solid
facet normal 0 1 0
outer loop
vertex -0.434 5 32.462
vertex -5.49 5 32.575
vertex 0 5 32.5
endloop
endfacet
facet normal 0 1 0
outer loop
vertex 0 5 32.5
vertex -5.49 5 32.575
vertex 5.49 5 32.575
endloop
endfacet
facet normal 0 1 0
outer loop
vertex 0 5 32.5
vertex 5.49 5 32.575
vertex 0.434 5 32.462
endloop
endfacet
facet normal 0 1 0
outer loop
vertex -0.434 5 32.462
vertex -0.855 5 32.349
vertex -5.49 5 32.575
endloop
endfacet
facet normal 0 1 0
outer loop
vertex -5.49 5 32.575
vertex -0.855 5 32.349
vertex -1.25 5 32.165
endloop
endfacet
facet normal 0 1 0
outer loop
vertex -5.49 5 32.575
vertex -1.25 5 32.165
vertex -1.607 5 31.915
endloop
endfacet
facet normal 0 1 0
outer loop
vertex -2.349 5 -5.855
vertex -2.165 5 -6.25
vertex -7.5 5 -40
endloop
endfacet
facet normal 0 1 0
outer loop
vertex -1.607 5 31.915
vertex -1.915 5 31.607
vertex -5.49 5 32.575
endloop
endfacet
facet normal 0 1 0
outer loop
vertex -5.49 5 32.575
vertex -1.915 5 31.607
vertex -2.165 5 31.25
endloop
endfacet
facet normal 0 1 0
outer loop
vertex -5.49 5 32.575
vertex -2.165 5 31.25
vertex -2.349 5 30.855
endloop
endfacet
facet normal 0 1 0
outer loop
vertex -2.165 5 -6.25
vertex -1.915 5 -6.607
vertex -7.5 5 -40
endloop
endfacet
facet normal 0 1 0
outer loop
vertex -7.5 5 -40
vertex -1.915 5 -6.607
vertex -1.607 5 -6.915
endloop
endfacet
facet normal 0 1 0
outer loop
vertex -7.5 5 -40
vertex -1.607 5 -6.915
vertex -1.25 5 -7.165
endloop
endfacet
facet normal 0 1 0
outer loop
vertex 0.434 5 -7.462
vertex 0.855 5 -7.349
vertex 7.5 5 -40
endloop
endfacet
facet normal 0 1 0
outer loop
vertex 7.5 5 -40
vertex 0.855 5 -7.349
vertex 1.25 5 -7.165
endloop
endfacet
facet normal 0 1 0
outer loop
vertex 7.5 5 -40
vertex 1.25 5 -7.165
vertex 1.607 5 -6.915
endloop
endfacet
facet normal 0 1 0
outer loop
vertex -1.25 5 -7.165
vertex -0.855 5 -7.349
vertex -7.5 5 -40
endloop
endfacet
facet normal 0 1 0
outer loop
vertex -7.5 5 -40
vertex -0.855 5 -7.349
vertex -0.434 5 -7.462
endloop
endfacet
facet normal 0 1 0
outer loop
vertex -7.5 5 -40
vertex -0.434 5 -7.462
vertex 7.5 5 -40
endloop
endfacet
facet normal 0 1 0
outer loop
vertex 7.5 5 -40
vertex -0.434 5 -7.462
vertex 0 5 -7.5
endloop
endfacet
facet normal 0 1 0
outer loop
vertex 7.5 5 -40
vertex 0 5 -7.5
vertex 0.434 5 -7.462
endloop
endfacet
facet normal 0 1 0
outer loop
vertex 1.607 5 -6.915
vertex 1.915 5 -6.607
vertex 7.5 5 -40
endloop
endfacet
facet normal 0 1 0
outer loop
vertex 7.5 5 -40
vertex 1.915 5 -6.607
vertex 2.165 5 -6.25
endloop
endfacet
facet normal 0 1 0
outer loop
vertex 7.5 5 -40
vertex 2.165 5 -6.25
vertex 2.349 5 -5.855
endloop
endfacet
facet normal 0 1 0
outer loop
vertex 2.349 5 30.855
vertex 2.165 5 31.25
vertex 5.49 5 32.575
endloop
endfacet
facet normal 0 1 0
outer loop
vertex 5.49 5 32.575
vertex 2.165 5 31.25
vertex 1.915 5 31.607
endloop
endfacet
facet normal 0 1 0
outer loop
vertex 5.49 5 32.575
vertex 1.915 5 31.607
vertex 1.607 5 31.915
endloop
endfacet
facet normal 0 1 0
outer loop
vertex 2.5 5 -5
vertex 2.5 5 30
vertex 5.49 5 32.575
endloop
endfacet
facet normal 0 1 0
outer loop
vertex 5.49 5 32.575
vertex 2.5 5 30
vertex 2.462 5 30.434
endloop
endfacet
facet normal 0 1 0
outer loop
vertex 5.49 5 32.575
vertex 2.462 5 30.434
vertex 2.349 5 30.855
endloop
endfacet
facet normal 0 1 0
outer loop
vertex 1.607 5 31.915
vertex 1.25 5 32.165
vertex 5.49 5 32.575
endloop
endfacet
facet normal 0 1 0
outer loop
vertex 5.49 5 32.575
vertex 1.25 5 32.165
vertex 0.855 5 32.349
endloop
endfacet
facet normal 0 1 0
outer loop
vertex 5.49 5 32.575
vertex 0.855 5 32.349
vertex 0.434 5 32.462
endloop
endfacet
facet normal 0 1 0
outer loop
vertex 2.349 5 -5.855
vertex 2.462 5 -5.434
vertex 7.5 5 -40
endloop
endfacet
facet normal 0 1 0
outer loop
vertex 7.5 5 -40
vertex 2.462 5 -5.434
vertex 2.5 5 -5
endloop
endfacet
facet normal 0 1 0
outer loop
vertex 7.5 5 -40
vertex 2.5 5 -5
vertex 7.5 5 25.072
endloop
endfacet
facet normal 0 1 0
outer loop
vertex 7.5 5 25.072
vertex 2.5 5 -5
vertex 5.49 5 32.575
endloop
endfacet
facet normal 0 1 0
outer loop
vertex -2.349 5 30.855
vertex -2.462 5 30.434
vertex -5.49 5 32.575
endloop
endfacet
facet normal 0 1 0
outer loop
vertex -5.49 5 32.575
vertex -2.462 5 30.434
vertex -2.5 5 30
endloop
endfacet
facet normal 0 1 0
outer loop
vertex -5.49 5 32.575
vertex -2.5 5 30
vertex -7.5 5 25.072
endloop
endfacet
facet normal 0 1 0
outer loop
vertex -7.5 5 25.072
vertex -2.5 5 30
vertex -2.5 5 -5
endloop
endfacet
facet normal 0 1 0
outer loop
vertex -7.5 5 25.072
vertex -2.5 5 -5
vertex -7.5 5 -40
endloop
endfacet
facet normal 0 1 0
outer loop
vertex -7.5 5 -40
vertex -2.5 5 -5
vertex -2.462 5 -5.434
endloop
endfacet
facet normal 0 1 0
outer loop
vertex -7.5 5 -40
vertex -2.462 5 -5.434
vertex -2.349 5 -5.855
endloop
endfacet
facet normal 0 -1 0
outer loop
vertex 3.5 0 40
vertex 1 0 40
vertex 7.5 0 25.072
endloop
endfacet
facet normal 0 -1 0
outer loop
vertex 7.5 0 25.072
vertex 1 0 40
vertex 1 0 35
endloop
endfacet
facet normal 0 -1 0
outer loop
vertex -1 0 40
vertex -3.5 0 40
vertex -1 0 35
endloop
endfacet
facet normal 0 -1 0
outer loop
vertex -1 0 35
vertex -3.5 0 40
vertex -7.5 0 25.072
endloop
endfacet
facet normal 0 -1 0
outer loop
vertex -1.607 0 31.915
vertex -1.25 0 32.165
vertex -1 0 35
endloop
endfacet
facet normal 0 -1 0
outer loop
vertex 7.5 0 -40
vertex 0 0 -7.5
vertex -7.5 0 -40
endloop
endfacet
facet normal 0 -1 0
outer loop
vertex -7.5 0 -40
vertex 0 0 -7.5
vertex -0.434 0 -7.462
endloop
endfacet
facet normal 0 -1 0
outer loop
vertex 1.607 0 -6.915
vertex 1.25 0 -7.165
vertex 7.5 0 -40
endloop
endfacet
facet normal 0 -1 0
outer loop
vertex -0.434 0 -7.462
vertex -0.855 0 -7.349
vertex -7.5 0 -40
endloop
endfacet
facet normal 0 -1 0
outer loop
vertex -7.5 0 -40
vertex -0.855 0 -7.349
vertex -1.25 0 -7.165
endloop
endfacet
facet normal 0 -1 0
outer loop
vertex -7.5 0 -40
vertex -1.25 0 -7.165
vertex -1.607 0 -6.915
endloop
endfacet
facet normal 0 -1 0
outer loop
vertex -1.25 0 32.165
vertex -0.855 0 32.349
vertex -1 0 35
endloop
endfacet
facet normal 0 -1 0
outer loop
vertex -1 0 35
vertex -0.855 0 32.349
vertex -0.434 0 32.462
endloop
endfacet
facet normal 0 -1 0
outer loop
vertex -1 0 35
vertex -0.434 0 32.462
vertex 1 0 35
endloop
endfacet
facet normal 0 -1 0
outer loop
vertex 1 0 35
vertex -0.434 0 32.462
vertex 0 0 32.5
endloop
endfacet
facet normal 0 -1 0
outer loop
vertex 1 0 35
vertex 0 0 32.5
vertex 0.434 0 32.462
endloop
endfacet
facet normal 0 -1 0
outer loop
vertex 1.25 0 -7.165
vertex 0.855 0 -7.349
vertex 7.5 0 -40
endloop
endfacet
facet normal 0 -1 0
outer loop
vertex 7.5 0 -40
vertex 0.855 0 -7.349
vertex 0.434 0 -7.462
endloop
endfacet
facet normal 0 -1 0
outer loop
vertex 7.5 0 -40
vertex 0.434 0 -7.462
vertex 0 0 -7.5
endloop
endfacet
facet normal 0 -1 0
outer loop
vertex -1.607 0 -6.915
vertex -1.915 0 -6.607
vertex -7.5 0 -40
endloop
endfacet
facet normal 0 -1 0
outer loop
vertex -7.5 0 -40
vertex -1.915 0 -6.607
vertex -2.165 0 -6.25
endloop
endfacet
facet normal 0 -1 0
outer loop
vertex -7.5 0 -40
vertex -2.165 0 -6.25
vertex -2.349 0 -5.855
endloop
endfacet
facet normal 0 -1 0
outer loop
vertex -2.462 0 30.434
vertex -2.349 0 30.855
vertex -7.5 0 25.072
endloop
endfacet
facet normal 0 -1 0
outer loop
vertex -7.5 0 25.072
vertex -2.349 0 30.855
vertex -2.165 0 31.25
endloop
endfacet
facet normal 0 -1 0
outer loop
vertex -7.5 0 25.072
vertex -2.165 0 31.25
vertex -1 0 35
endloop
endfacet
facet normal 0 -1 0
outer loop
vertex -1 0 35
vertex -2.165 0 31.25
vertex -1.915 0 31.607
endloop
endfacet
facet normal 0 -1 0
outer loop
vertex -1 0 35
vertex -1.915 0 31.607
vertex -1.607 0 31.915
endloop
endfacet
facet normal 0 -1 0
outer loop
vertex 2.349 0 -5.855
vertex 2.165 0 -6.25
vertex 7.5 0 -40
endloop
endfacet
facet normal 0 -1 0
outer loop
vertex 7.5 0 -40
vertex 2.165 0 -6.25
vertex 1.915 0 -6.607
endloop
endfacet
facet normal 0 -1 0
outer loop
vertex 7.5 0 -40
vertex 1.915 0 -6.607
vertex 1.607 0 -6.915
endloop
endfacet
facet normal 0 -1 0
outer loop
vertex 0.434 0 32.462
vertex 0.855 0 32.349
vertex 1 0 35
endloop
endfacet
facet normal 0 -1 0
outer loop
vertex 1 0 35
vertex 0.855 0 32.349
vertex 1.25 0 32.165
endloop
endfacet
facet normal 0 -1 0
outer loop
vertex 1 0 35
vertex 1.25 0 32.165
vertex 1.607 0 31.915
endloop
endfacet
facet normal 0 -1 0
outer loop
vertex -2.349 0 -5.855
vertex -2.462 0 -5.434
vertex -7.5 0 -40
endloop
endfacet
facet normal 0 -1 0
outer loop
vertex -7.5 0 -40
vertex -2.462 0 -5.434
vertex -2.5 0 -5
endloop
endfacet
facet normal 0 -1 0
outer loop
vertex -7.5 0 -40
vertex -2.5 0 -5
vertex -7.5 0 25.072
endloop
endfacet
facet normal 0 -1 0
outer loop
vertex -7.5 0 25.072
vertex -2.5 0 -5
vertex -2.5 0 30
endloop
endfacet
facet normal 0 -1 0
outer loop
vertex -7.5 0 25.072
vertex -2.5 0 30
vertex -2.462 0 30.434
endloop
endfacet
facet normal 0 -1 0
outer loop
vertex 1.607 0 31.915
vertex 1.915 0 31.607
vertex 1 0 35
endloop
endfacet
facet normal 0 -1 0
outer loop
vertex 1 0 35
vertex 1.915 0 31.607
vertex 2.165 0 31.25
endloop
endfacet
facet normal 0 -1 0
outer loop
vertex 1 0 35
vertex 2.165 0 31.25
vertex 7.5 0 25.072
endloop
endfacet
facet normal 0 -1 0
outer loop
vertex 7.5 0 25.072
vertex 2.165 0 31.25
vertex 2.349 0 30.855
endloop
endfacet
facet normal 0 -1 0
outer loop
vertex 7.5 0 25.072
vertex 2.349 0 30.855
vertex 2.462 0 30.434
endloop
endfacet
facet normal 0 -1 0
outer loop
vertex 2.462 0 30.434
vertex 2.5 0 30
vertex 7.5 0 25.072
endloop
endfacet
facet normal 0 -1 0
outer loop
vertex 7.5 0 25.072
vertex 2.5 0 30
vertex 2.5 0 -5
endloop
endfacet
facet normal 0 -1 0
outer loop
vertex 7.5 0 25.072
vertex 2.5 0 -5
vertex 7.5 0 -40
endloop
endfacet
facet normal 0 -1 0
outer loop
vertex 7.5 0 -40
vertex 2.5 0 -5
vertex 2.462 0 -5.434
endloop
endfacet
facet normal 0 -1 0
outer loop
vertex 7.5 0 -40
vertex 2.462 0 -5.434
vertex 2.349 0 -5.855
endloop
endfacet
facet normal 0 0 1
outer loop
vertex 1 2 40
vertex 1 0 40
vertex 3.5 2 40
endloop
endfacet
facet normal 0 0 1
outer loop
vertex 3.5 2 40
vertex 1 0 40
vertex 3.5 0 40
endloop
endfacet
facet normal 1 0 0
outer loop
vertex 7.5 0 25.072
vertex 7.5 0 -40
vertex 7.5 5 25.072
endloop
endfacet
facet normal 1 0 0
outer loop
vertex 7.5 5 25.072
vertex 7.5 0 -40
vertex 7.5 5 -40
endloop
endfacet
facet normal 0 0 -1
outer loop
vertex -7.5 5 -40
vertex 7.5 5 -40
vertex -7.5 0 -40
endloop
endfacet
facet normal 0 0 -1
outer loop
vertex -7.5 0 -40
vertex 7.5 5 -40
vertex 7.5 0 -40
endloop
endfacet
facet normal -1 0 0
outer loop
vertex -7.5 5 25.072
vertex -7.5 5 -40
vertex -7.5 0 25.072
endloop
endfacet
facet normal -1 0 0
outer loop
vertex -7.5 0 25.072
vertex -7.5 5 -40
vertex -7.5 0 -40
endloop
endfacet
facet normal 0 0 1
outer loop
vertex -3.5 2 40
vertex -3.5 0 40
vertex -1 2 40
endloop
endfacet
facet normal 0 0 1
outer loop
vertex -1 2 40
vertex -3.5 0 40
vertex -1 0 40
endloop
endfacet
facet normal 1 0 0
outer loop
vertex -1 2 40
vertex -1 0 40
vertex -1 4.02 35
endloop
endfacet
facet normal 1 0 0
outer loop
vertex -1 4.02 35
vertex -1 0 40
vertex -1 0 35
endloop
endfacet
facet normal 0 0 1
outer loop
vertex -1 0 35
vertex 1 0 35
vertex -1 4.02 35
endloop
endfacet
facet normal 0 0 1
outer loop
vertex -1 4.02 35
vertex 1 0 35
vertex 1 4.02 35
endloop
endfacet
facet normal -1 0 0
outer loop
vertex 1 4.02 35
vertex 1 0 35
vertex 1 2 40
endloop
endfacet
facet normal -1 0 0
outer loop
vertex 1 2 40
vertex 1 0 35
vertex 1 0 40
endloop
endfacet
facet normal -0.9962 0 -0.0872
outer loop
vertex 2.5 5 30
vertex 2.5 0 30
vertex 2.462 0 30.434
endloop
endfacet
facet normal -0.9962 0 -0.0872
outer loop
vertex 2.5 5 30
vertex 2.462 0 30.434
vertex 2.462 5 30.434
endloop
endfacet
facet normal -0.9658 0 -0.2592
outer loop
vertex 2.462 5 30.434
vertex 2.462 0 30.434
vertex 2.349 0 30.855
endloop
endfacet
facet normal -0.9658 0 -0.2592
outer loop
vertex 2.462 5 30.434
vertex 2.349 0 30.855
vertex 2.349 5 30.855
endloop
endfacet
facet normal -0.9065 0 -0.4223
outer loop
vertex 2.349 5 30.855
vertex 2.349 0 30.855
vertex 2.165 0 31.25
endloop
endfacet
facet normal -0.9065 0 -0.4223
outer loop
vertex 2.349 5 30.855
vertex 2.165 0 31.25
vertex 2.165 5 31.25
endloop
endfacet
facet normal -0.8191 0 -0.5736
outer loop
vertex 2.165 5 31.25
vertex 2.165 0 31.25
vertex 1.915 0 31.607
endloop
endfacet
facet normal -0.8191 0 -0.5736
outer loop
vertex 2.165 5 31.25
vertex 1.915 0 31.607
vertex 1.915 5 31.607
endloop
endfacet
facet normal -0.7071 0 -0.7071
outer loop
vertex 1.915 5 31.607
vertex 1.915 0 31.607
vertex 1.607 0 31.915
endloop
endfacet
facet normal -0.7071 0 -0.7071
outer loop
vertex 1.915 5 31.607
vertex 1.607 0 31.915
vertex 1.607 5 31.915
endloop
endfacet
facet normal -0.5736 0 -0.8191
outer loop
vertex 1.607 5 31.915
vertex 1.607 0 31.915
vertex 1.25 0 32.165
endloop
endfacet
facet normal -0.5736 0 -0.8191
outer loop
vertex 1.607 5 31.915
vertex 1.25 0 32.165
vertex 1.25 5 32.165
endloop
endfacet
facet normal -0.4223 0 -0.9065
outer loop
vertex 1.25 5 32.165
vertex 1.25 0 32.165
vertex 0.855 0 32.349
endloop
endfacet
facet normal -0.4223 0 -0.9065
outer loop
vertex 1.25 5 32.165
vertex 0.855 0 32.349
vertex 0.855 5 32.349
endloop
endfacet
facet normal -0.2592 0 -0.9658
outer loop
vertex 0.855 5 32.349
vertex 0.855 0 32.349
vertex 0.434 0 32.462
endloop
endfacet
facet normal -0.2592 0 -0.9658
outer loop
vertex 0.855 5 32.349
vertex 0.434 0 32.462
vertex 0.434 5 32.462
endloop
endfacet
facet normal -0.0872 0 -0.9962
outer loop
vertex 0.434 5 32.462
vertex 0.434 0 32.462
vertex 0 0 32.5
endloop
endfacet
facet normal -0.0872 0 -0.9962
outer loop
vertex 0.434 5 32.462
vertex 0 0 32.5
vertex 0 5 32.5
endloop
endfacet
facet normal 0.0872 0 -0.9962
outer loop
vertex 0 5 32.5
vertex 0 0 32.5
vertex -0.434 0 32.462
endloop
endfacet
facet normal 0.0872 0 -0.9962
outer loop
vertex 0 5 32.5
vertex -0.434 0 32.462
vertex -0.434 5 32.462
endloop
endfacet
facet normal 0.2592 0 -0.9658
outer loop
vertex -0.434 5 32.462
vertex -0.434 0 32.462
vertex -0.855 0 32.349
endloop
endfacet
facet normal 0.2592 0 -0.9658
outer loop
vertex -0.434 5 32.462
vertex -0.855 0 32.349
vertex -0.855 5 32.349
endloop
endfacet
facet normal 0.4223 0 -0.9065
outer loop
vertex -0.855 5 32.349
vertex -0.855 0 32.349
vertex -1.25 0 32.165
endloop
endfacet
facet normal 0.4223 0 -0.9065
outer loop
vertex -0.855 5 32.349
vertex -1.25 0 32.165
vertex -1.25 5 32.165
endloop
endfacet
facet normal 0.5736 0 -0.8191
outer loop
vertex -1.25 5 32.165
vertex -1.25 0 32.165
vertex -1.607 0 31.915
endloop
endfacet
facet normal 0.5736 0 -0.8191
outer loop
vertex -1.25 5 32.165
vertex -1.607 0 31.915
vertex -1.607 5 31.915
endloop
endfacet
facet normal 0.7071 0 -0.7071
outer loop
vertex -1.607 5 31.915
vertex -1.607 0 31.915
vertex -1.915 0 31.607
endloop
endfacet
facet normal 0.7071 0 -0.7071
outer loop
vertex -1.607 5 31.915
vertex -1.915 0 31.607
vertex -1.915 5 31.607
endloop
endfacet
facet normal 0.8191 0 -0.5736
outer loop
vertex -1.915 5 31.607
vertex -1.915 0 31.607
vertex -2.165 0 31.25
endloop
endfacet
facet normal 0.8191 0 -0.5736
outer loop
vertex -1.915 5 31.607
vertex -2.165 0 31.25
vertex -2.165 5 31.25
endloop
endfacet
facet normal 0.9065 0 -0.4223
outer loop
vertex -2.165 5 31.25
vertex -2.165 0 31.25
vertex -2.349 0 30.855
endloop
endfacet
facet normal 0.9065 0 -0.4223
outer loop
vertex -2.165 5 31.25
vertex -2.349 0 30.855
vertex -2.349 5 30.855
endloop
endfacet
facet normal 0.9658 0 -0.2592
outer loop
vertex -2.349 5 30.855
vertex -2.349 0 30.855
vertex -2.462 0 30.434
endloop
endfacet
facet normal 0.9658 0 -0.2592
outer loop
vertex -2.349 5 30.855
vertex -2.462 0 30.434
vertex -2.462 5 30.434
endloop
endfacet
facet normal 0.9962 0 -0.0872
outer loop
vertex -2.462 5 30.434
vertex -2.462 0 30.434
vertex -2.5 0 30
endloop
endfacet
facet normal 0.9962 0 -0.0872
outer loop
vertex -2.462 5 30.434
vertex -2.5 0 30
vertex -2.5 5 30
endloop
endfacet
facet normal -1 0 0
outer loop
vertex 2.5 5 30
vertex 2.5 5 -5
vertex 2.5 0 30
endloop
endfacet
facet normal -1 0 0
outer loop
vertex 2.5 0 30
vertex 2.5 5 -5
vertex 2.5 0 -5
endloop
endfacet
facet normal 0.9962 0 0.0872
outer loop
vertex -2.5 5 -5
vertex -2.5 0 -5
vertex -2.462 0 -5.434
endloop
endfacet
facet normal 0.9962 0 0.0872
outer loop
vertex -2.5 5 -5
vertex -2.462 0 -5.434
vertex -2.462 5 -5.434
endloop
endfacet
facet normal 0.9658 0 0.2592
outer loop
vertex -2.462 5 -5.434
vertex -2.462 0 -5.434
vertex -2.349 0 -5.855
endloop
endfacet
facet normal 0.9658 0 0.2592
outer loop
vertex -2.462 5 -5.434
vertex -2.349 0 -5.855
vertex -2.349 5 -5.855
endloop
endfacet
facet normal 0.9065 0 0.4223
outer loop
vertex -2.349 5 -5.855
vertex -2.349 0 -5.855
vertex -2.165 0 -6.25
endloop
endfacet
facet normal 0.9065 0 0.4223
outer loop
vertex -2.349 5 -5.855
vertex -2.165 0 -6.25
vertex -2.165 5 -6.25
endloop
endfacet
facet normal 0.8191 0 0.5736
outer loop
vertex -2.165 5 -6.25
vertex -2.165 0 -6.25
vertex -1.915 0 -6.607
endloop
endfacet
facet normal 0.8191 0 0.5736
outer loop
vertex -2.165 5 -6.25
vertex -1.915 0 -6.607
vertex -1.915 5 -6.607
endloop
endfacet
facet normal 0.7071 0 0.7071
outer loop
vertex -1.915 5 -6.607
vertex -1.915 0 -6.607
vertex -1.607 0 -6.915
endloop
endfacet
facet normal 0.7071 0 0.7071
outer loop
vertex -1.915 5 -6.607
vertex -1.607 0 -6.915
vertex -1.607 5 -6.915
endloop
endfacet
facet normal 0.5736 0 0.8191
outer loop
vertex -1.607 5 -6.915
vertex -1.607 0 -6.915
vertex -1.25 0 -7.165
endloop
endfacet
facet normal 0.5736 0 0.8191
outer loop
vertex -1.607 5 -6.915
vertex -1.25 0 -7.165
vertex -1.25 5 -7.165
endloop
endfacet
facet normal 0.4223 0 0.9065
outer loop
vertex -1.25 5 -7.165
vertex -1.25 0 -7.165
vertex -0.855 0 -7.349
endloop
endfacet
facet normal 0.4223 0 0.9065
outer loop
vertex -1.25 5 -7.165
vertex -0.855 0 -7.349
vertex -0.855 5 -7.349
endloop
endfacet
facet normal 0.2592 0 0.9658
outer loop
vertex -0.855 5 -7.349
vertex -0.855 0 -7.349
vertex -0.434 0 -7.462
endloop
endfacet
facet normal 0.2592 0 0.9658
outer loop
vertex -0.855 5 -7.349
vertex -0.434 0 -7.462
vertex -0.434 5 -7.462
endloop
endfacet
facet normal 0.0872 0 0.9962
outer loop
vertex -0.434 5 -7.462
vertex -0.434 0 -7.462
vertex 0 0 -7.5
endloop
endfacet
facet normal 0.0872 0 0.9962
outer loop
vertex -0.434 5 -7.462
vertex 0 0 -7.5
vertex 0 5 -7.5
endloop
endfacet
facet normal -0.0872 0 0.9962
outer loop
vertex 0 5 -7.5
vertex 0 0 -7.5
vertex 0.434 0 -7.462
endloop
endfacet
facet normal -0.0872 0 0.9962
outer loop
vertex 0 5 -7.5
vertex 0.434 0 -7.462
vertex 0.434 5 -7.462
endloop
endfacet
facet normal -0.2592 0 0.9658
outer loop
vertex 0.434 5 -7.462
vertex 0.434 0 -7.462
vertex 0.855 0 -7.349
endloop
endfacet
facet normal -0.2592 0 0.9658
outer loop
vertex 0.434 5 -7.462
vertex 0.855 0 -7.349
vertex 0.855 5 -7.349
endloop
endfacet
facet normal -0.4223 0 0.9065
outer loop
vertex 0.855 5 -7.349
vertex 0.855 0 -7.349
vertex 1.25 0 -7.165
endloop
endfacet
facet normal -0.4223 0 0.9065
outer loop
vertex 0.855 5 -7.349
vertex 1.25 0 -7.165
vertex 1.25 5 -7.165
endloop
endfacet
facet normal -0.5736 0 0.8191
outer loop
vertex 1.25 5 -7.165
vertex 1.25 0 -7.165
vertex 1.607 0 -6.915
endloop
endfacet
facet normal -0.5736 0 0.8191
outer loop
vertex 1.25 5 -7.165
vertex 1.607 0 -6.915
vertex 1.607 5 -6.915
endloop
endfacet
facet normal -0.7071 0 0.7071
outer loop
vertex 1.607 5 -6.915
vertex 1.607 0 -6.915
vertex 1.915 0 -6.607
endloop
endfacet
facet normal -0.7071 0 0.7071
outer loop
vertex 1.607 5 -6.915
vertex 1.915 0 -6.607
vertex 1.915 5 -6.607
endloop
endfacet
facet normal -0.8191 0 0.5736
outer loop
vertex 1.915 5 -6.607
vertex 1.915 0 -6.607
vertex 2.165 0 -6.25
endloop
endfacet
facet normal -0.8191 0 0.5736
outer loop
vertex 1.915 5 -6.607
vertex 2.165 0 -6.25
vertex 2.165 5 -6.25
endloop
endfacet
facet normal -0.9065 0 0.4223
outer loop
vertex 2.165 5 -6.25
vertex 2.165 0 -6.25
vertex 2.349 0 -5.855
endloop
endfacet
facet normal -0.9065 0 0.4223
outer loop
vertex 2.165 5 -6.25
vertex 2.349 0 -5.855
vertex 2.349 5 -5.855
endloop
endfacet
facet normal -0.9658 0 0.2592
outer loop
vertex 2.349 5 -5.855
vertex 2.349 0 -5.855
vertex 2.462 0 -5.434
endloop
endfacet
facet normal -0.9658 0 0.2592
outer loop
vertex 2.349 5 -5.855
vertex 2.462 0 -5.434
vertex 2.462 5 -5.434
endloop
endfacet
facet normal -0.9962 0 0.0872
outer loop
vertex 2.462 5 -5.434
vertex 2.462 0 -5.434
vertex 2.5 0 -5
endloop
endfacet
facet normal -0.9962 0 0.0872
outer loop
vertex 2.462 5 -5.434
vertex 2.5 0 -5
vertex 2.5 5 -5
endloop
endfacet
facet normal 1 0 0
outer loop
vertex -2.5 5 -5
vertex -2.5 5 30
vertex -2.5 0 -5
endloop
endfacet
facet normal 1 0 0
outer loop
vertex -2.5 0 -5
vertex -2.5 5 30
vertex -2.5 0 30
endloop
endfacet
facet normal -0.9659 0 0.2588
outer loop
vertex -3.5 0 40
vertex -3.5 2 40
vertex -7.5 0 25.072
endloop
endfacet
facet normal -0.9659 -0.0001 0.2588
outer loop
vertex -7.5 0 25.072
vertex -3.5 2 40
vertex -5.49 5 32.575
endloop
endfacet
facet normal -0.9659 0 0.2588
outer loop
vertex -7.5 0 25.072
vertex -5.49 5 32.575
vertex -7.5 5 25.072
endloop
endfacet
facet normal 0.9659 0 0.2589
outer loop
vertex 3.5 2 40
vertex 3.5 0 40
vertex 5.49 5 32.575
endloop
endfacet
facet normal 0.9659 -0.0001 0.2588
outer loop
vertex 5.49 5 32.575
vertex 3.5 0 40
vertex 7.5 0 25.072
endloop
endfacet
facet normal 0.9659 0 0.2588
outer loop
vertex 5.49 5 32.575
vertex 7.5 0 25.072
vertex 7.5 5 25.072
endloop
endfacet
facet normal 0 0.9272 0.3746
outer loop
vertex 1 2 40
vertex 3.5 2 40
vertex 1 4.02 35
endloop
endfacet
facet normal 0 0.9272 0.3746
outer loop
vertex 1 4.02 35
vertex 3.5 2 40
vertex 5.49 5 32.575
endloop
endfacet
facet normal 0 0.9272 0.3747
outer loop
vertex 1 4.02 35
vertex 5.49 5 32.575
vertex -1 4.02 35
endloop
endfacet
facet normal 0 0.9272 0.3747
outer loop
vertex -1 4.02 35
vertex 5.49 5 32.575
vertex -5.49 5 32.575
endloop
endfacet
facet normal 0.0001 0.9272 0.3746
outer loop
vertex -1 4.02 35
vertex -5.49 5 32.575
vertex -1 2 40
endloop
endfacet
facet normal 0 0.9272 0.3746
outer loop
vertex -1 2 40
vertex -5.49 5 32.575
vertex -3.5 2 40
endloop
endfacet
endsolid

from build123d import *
from OCP.BRepFilletAPI import BRepFilletAPI_MakeChamfer

# Parameters (mm, degrees)
BOSS_EXTRUDE1_DEPTH = 5
CHAMFER1_SIZE       = 4
CHAMFER1_SIZE2      = 14.92820323
CHAMFER2_SIZE       = 3
CHAMFER2_SIZE2      = 7.42526056


with BuildPart() as part:
    # Sketch1 → Boss-Extrude1 (new body)
    with BuildSketch(Plane(origin=(0, 0, 0), x_dir=(1, 0, 0), z_dir=(0, 1, 0))):
        Polygon((-7.5, 40), (7.5, 40), (7.5, -40), (1, -40), (1, -35), (-1, -35), (-1, -40), (-7.5, -40), align=None)
        with BuildLine():
            Line((-2.5, -30), (-2.5, 5))
            ThreePointArc((-2.5, 5), (0, 7.5), (2.5, 5))
            Line((2.5, 5), (2.5, -30))
            ThreePointArc((2.5, -30), (0, -32.5), (-2.5, -30))
        make_face(mode=Mode.SUBTRACT)
    extrude(amount=BOSS_EXTRUDE1_DEPTH)

    # Chamfer1: one chamfer whose edges measure the first distance from different faces: ONE call of the kernel's chamfer builder (chamfer() names one face for all edges)
    chamfer1_edges_1 = [part.edges().sort_by_distance(p)[0] for p in [
        (-7.5, 2.5, 40),
    ]]
    chamfer1_side_1 = [part.faces().sort_by_distance(p)[0] for p in [
        (-4.25, 2.5, 40),
    ]]
    chamfer1_edges_2 = [part.edges().sort_by_distance(p)[0] for p in [
        (7.5, 2.5, 40),
    ]]
    chamfer1_side_2 = [part.faces().sort_by_distance(p)[0] for p in [
        (4.25, 2.5, 40),
    ]]
    chamfer1 = BRepFilletAPI_MakeChamfer(part.part.solid().wrapped)
    for e in chamfer1_edges_1:
        chamfer1.Add(CHAMFER1_SIZE, CHAMFER1_SIZE2, e.wrapped, chamfer1_side_1[0].wrapped)  # the first distance lies on this face
    for e in chamfer1_edges_2:
        chamfer1.Add(CHAMFER1_SIZE, CHAMFER1_SIZE2, e.wrapped, chamfer1_side_2[0].wrapped)  # the first distance lies on this face
    add(Compound.cast(chamfer1.Shape()), mode=Mode.REPLACE)

    # Chamfer2
    chamfer2_edges = [part.edges().sort_by_distance(p)[0] for p in [
        (2.25, 5, 40),
    ]]
    chamfer2_side = [part.faces().sort_by_distance(p)[0] for p in [
        (2.25, 2.5, 40),
    ]]
    chamfer(chamfer2_edges, length=CHAMFER2_SIZE, length2=CHAMFER2_SIZE2, reference=chamfer2_side[0])


solid = part.part
